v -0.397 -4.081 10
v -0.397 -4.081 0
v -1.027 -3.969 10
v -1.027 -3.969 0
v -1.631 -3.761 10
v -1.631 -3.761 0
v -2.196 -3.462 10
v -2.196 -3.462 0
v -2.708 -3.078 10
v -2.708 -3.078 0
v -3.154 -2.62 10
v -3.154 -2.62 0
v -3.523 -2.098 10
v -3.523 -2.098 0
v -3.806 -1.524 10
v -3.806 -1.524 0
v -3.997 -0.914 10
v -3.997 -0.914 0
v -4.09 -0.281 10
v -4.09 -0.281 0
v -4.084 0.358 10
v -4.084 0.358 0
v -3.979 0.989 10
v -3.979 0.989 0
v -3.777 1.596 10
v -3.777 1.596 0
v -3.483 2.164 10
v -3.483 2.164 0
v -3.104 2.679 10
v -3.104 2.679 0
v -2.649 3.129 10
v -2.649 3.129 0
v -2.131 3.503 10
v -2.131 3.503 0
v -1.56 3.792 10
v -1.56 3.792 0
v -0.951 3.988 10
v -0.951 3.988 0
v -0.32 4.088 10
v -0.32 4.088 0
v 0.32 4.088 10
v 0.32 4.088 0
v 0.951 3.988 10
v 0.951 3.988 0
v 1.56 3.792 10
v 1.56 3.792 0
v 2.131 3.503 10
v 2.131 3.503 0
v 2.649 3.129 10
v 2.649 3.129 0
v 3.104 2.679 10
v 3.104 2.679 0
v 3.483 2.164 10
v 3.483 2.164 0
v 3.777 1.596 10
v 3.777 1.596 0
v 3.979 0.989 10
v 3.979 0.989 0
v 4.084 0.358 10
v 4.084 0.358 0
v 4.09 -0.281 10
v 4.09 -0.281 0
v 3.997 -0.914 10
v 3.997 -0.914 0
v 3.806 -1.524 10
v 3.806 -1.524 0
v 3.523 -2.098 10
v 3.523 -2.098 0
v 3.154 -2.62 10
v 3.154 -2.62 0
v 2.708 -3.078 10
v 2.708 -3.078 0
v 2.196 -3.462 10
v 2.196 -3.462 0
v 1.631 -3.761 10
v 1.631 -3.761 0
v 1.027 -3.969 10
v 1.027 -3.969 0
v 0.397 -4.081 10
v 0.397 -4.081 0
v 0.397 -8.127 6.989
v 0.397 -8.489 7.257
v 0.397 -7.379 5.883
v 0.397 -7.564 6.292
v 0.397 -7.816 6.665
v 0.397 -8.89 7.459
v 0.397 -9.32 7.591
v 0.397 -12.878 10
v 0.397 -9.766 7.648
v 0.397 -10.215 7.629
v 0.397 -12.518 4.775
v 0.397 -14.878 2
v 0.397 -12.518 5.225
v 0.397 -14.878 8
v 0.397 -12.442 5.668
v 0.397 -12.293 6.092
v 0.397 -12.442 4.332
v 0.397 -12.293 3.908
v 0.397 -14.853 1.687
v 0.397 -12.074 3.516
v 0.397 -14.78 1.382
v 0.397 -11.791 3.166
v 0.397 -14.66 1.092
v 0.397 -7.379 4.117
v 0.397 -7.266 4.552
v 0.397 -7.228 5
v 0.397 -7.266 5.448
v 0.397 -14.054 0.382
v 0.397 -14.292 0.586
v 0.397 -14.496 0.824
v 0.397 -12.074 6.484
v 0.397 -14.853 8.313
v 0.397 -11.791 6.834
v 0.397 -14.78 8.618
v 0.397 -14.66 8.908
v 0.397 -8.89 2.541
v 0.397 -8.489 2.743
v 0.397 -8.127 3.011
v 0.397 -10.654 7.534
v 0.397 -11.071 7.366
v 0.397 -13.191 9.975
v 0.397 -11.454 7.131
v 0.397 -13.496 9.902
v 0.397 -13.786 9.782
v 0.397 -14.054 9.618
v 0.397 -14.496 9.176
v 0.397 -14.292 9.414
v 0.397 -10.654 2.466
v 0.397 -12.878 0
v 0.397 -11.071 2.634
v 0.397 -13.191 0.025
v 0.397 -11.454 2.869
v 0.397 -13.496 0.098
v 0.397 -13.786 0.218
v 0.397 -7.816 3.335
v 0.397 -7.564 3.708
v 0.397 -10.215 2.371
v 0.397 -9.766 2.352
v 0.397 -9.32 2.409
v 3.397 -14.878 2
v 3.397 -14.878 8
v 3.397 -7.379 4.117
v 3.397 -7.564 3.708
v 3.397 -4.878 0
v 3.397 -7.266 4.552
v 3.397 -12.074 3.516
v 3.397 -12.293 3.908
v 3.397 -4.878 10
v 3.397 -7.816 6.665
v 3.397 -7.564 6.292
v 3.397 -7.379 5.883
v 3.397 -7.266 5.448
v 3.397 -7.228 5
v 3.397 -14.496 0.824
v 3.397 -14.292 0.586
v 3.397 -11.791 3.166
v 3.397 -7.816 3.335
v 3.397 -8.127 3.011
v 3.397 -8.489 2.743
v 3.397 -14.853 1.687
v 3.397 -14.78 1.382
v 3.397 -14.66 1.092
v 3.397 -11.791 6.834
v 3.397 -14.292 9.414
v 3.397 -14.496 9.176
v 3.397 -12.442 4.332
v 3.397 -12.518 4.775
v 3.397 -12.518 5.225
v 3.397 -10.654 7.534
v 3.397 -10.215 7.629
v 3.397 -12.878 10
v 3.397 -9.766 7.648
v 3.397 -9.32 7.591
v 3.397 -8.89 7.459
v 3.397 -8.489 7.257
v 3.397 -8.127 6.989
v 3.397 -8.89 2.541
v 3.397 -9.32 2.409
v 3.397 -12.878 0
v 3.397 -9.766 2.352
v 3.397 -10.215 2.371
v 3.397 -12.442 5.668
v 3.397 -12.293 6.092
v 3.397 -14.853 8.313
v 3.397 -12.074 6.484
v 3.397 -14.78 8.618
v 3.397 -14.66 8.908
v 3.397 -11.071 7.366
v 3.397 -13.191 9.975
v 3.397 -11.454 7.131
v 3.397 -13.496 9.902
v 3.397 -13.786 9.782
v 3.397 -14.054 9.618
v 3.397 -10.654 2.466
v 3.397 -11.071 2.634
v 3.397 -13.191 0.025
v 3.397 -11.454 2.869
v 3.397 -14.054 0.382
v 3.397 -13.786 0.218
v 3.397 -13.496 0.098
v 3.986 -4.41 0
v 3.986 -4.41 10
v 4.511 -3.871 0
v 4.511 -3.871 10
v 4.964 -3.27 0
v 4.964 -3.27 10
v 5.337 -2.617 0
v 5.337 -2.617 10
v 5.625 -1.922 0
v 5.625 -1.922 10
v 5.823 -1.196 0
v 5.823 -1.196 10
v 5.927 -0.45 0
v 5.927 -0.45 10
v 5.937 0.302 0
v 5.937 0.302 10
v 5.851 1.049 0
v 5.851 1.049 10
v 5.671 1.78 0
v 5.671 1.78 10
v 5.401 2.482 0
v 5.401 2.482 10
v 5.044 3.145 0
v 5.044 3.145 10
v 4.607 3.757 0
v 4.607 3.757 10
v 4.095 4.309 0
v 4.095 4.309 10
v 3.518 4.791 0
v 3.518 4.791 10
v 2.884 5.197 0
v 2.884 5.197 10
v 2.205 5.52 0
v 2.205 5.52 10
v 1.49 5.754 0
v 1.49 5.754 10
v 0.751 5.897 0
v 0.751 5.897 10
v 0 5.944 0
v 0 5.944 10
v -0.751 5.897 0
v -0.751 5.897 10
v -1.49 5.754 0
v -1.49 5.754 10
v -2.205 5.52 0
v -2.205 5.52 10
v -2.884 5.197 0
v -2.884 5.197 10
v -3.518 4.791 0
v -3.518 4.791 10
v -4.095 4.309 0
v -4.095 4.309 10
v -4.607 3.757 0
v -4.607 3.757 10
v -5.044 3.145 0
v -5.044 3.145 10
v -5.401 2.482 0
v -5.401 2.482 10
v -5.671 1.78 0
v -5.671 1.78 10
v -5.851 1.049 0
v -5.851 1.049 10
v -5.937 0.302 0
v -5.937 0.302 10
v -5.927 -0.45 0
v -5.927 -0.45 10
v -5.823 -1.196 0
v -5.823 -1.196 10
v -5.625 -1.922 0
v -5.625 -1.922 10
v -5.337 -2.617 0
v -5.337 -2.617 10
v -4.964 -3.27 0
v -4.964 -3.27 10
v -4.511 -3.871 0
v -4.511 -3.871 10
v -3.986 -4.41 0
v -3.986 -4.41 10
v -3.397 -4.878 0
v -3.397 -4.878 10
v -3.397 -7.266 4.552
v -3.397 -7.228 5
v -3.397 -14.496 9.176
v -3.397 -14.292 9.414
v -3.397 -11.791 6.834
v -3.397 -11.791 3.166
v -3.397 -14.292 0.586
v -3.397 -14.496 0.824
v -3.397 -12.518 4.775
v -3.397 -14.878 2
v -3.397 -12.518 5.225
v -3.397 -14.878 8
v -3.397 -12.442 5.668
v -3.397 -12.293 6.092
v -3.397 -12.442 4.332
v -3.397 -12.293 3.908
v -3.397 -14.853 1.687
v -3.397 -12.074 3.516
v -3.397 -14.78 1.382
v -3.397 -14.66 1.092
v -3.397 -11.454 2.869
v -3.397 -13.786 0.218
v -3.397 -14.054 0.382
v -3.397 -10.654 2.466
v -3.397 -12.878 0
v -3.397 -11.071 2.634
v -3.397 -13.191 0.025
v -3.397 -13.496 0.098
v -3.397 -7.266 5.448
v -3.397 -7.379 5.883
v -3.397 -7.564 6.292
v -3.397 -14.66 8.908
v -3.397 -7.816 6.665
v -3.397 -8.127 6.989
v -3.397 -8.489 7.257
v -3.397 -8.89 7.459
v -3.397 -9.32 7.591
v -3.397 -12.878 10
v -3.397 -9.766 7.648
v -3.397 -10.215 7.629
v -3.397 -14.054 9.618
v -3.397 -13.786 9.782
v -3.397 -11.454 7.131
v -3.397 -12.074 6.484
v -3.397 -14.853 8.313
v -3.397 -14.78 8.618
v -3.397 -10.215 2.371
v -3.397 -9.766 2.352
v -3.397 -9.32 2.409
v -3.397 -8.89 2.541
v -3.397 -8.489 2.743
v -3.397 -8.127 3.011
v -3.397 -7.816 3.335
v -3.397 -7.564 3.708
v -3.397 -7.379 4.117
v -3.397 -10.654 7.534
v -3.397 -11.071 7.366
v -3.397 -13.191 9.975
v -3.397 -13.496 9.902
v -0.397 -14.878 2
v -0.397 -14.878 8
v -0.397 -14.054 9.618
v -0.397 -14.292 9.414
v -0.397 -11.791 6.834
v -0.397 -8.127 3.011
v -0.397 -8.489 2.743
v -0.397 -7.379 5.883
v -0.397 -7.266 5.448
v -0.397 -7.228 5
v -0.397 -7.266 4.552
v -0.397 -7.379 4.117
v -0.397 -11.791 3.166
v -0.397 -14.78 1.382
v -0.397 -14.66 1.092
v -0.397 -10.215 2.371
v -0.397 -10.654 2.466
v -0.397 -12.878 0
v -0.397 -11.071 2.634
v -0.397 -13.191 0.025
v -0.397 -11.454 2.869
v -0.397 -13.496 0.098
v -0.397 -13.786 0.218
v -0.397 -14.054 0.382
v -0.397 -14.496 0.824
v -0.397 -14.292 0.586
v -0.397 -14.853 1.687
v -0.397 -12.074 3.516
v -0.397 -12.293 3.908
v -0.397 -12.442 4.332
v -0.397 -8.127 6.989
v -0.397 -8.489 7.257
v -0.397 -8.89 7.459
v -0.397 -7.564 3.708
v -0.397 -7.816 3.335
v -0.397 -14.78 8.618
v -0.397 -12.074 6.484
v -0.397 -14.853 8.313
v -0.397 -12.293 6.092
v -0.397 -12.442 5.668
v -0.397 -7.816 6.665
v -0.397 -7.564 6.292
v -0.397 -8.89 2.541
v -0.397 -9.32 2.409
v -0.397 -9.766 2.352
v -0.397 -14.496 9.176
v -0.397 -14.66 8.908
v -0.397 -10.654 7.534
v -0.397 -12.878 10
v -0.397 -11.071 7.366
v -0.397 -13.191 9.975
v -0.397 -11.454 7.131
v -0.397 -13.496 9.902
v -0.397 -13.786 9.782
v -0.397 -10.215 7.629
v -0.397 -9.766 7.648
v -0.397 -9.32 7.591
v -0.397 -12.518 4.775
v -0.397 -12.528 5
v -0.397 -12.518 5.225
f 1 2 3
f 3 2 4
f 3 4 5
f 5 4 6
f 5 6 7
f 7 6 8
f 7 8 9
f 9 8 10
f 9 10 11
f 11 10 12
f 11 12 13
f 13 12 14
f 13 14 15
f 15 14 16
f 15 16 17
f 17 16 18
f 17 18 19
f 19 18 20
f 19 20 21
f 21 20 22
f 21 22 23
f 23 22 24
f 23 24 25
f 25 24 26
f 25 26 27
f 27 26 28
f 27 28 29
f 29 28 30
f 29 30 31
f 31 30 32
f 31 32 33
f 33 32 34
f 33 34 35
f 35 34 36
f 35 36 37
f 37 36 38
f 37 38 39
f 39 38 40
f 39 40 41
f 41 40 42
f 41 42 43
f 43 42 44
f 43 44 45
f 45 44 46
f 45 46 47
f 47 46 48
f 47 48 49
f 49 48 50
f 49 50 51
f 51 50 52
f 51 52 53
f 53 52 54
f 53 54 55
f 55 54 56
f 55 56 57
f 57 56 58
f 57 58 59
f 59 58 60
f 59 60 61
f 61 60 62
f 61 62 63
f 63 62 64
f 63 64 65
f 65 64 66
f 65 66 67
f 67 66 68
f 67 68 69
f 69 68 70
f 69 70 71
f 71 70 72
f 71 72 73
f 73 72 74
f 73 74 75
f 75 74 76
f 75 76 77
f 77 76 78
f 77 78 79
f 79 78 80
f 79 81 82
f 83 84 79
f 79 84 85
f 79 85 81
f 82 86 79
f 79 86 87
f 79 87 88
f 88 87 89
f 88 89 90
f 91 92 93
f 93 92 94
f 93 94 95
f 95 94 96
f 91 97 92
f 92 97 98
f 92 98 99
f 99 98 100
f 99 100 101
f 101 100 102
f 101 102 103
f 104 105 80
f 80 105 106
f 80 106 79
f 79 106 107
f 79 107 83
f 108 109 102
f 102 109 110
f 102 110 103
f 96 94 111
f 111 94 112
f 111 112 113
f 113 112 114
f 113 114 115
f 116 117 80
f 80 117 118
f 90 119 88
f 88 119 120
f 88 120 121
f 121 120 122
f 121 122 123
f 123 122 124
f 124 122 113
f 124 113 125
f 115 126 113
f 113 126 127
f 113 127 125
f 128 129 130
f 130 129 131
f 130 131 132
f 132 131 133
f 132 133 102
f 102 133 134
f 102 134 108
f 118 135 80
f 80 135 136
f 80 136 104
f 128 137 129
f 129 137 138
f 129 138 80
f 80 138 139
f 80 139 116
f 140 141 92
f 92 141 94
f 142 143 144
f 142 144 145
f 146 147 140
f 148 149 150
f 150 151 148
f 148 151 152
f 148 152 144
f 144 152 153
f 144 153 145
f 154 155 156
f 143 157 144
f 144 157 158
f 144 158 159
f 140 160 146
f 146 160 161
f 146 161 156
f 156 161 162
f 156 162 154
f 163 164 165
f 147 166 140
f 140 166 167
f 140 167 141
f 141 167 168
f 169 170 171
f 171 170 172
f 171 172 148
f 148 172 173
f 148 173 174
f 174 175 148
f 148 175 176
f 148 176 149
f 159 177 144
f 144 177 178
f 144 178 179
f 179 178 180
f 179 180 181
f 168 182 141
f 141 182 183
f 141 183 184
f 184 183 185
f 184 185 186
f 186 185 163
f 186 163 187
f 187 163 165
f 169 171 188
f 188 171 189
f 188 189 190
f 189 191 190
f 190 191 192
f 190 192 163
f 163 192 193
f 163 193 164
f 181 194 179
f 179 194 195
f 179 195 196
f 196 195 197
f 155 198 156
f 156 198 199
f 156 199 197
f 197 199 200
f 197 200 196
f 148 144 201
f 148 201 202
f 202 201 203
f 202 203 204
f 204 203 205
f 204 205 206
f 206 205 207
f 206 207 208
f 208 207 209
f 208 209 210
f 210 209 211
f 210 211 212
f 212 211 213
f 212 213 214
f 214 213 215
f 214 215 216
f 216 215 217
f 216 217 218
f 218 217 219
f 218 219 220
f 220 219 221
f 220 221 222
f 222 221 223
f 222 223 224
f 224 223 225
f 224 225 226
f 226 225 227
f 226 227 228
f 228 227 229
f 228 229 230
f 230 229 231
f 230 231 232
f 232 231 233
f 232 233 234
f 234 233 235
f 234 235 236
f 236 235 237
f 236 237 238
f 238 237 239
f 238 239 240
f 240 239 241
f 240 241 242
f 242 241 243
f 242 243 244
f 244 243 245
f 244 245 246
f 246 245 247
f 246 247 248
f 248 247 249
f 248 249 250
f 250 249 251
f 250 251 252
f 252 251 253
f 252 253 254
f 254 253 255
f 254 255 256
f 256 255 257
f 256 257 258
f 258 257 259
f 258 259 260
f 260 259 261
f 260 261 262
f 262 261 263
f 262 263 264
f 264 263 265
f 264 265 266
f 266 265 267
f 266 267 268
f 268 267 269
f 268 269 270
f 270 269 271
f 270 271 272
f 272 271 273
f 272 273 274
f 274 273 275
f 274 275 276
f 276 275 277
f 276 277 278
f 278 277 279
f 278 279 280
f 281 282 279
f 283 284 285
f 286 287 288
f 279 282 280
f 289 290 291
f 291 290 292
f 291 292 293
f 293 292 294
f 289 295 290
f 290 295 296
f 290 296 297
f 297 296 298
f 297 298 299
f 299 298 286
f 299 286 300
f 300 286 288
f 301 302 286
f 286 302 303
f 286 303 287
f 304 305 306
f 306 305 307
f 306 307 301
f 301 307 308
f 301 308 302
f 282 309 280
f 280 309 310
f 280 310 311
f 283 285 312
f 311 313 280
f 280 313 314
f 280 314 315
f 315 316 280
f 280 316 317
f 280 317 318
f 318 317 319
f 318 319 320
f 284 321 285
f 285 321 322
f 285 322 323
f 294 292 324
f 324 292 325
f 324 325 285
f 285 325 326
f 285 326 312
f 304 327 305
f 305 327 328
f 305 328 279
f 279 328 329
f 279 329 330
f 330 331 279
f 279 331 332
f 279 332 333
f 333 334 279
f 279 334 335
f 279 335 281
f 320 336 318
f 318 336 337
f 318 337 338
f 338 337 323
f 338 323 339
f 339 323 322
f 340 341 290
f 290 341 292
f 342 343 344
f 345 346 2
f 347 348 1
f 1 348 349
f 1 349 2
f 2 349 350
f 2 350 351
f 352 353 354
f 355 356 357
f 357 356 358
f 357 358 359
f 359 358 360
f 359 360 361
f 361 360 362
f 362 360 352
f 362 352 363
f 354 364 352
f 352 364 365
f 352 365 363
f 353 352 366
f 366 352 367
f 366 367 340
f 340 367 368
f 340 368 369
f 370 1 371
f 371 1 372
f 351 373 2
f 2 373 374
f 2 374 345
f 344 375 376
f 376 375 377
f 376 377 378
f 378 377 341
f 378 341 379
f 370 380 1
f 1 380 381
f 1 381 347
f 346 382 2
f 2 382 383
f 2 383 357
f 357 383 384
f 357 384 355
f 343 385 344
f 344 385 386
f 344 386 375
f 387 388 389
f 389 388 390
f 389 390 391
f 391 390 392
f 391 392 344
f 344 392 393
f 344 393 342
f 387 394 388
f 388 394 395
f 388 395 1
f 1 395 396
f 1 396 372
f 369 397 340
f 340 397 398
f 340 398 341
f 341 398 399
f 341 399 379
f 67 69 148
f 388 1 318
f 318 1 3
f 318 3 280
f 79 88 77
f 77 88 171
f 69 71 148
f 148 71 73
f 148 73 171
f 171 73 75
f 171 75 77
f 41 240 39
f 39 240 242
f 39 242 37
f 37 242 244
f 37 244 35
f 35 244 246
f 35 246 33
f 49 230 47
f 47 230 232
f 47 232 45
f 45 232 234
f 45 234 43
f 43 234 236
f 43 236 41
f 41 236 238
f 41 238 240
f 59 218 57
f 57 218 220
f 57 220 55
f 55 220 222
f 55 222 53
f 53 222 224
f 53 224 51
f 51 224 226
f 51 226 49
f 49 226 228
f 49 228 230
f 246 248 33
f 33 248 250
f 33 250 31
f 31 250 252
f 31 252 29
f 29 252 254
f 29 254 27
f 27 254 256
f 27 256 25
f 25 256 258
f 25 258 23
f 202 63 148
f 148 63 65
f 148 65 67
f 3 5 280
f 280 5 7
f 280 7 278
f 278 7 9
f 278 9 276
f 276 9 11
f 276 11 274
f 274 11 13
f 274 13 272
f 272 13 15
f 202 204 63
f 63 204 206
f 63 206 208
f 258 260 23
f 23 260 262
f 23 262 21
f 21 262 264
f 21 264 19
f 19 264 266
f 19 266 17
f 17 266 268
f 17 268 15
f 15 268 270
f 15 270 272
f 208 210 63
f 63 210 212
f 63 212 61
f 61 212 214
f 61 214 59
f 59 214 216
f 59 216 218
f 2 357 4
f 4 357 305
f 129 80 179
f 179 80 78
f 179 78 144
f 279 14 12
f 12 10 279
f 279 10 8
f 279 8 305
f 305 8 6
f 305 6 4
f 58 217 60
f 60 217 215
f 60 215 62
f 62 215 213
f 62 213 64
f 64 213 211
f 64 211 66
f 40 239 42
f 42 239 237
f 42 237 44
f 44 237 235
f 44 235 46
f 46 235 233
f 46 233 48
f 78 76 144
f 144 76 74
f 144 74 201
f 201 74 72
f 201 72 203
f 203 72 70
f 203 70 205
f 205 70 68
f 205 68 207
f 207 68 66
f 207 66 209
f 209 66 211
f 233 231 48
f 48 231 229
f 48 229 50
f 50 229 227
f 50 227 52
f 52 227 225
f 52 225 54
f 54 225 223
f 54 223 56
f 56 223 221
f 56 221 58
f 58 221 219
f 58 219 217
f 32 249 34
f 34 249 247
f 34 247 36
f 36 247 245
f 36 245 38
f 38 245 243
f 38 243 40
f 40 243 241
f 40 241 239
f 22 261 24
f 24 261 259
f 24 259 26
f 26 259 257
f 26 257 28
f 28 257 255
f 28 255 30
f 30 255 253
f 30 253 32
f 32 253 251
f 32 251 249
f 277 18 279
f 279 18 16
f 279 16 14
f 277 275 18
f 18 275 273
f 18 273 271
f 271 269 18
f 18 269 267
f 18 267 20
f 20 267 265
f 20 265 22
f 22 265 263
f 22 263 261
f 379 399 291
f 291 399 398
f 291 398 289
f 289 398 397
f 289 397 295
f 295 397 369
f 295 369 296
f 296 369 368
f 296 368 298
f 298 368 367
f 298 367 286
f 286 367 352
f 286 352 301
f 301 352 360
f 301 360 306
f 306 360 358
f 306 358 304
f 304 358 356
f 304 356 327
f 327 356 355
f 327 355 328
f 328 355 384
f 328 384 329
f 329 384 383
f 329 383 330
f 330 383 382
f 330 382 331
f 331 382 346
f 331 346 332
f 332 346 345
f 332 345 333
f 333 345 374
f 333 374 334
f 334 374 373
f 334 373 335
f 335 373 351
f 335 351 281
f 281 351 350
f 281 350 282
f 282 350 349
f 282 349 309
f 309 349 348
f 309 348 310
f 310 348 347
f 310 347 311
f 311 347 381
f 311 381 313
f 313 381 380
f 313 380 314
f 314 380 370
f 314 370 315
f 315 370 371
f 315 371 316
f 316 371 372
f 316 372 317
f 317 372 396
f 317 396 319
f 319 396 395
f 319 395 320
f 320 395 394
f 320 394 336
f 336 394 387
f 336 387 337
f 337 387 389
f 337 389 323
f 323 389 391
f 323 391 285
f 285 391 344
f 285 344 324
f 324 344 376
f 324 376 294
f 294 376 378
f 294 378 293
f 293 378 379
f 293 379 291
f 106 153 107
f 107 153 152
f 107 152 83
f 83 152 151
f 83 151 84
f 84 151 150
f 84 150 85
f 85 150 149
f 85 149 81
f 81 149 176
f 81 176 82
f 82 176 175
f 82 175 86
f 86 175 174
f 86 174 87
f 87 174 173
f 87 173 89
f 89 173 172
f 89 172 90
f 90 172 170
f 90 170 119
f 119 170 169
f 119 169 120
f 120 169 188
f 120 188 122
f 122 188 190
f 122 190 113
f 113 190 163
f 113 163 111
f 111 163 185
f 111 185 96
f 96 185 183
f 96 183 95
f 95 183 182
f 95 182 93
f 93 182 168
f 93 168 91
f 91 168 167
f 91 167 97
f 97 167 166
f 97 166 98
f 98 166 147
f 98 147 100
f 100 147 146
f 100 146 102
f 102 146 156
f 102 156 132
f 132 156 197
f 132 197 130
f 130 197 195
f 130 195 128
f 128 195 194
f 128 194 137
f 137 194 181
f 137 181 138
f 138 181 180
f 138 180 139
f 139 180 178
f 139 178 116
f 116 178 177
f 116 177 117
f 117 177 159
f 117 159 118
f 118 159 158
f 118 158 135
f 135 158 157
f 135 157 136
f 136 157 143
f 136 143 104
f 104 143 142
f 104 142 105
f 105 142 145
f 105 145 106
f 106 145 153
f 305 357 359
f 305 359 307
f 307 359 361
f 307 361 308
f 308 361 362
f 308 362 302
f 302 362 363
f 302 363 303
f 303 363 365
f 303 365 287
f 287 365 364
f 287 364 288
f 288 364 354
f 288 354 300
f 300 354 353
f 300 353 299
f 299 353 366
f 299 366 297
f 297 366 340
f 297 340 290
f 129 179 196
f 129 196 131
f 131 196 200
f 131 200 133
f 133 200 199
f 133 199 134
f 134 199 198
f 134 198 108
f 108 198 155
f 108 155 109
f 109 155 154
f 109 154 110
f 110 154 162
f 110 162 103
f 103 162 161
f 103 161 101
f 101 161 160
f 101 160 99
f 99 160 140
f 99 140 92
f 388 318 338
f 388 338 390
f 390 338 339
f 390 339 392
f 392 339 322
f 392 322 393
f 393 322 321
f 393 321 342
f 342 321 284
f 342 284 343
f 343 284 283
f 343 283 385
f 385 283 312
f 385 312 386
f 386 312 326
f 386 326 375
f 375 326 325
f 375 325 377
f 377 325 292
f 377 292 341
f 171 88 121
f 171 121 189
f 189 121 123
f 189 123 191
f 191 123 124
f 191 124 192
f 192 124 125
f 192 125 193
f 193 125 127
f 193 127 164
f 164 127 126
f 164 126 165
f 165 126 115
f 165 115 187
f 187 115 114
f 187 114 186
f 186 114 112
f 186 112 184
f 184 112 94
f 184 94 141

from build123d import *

# Parameters (mm, degrees)
BOSS_EXTRUDE1_DEPTH = 10
CUT_EXTRUDE1_DEPTH  = 10
FILLET1_R           = 2


with BuildPart() as part:
    # Sketch1 → Boss-Extrude1 (new body)
    with BuildSketch(Plane.XY):
        with BuildLine():
            Line((-0.39684881, -4.080748831), (-0.39684881, -14.87796999))
            Line((-0.39684881, -14.87796999), (-3.39684881, -14.87796999))
            Line((-3.39684881, -14.87796999), (-3.39684881, -4.87796999))
            ThreePointArc((-3.39684881, -4.87796999), (0, 5.944171352), (3.39684881, -4.87796999))
            Line((3.39684881, -4.87796999), (3.39684881, -14.87796999))
            Line((3.39684881, -14.87796999), (0.39684881, -14.87796999))
            Line((0.39684881, -14.87796999), (0.39684881, -4.080748831))
            ThreePointArc((0.39684881, -4.080748831), (0, 4.1), (-0.39684881, -4.080748831))
        make_face()
    extrude(amount=BOSS_EXTRUDE1_DEPTH)

    # Sketch2 → Cut-Extrude1 (cut)
    with BuildSketch(Plane(origin=(3.39684881, 0, 0), x_dir=(0, 0, -1), z_dir=(1, 0, 0))):
        with BuildLine():
            ThreePointArc((-3.12616703, -8.004137019), (-6.87383297, -8.004137019), (-6.87383297, -11.75180296))
            Line((-6.87383297, -11.75180296), (-3.12616703, -8.004137019))
        make_face()
        with BuildLine():
            Line((-3.12616703, -8.004137019), (-6.87383297, -11.75180296))
            ThreePointArc((-6.87383297, -11.75180296), (-3.985888904, -12.326250751), (-2.35, -9.87796999))
            ThreePointArc((-2.35, -9.87796999), (-2.551719239, -8.863858894), (-3.12616703, -8.004137019))
        make_face()
    extrude(amount=-CUT_EXTRUDE1_DEPTH, mode=Mode.SUBTRACT)

    # Fillet1
    fillet1_edges = [part.edges().sort_by_distance(p)[0] for p in [
        (1.89684881, -14.87796999, 0),
        (1.89684881, -14.87796999, 10),
        (-1.89684881, -14.87796999, 10),
        (-1.89684881, -14.87796999, 0),
    ]]
    fillet(fillet1_edges, radius=FILLET1_R)


solid = part.part
